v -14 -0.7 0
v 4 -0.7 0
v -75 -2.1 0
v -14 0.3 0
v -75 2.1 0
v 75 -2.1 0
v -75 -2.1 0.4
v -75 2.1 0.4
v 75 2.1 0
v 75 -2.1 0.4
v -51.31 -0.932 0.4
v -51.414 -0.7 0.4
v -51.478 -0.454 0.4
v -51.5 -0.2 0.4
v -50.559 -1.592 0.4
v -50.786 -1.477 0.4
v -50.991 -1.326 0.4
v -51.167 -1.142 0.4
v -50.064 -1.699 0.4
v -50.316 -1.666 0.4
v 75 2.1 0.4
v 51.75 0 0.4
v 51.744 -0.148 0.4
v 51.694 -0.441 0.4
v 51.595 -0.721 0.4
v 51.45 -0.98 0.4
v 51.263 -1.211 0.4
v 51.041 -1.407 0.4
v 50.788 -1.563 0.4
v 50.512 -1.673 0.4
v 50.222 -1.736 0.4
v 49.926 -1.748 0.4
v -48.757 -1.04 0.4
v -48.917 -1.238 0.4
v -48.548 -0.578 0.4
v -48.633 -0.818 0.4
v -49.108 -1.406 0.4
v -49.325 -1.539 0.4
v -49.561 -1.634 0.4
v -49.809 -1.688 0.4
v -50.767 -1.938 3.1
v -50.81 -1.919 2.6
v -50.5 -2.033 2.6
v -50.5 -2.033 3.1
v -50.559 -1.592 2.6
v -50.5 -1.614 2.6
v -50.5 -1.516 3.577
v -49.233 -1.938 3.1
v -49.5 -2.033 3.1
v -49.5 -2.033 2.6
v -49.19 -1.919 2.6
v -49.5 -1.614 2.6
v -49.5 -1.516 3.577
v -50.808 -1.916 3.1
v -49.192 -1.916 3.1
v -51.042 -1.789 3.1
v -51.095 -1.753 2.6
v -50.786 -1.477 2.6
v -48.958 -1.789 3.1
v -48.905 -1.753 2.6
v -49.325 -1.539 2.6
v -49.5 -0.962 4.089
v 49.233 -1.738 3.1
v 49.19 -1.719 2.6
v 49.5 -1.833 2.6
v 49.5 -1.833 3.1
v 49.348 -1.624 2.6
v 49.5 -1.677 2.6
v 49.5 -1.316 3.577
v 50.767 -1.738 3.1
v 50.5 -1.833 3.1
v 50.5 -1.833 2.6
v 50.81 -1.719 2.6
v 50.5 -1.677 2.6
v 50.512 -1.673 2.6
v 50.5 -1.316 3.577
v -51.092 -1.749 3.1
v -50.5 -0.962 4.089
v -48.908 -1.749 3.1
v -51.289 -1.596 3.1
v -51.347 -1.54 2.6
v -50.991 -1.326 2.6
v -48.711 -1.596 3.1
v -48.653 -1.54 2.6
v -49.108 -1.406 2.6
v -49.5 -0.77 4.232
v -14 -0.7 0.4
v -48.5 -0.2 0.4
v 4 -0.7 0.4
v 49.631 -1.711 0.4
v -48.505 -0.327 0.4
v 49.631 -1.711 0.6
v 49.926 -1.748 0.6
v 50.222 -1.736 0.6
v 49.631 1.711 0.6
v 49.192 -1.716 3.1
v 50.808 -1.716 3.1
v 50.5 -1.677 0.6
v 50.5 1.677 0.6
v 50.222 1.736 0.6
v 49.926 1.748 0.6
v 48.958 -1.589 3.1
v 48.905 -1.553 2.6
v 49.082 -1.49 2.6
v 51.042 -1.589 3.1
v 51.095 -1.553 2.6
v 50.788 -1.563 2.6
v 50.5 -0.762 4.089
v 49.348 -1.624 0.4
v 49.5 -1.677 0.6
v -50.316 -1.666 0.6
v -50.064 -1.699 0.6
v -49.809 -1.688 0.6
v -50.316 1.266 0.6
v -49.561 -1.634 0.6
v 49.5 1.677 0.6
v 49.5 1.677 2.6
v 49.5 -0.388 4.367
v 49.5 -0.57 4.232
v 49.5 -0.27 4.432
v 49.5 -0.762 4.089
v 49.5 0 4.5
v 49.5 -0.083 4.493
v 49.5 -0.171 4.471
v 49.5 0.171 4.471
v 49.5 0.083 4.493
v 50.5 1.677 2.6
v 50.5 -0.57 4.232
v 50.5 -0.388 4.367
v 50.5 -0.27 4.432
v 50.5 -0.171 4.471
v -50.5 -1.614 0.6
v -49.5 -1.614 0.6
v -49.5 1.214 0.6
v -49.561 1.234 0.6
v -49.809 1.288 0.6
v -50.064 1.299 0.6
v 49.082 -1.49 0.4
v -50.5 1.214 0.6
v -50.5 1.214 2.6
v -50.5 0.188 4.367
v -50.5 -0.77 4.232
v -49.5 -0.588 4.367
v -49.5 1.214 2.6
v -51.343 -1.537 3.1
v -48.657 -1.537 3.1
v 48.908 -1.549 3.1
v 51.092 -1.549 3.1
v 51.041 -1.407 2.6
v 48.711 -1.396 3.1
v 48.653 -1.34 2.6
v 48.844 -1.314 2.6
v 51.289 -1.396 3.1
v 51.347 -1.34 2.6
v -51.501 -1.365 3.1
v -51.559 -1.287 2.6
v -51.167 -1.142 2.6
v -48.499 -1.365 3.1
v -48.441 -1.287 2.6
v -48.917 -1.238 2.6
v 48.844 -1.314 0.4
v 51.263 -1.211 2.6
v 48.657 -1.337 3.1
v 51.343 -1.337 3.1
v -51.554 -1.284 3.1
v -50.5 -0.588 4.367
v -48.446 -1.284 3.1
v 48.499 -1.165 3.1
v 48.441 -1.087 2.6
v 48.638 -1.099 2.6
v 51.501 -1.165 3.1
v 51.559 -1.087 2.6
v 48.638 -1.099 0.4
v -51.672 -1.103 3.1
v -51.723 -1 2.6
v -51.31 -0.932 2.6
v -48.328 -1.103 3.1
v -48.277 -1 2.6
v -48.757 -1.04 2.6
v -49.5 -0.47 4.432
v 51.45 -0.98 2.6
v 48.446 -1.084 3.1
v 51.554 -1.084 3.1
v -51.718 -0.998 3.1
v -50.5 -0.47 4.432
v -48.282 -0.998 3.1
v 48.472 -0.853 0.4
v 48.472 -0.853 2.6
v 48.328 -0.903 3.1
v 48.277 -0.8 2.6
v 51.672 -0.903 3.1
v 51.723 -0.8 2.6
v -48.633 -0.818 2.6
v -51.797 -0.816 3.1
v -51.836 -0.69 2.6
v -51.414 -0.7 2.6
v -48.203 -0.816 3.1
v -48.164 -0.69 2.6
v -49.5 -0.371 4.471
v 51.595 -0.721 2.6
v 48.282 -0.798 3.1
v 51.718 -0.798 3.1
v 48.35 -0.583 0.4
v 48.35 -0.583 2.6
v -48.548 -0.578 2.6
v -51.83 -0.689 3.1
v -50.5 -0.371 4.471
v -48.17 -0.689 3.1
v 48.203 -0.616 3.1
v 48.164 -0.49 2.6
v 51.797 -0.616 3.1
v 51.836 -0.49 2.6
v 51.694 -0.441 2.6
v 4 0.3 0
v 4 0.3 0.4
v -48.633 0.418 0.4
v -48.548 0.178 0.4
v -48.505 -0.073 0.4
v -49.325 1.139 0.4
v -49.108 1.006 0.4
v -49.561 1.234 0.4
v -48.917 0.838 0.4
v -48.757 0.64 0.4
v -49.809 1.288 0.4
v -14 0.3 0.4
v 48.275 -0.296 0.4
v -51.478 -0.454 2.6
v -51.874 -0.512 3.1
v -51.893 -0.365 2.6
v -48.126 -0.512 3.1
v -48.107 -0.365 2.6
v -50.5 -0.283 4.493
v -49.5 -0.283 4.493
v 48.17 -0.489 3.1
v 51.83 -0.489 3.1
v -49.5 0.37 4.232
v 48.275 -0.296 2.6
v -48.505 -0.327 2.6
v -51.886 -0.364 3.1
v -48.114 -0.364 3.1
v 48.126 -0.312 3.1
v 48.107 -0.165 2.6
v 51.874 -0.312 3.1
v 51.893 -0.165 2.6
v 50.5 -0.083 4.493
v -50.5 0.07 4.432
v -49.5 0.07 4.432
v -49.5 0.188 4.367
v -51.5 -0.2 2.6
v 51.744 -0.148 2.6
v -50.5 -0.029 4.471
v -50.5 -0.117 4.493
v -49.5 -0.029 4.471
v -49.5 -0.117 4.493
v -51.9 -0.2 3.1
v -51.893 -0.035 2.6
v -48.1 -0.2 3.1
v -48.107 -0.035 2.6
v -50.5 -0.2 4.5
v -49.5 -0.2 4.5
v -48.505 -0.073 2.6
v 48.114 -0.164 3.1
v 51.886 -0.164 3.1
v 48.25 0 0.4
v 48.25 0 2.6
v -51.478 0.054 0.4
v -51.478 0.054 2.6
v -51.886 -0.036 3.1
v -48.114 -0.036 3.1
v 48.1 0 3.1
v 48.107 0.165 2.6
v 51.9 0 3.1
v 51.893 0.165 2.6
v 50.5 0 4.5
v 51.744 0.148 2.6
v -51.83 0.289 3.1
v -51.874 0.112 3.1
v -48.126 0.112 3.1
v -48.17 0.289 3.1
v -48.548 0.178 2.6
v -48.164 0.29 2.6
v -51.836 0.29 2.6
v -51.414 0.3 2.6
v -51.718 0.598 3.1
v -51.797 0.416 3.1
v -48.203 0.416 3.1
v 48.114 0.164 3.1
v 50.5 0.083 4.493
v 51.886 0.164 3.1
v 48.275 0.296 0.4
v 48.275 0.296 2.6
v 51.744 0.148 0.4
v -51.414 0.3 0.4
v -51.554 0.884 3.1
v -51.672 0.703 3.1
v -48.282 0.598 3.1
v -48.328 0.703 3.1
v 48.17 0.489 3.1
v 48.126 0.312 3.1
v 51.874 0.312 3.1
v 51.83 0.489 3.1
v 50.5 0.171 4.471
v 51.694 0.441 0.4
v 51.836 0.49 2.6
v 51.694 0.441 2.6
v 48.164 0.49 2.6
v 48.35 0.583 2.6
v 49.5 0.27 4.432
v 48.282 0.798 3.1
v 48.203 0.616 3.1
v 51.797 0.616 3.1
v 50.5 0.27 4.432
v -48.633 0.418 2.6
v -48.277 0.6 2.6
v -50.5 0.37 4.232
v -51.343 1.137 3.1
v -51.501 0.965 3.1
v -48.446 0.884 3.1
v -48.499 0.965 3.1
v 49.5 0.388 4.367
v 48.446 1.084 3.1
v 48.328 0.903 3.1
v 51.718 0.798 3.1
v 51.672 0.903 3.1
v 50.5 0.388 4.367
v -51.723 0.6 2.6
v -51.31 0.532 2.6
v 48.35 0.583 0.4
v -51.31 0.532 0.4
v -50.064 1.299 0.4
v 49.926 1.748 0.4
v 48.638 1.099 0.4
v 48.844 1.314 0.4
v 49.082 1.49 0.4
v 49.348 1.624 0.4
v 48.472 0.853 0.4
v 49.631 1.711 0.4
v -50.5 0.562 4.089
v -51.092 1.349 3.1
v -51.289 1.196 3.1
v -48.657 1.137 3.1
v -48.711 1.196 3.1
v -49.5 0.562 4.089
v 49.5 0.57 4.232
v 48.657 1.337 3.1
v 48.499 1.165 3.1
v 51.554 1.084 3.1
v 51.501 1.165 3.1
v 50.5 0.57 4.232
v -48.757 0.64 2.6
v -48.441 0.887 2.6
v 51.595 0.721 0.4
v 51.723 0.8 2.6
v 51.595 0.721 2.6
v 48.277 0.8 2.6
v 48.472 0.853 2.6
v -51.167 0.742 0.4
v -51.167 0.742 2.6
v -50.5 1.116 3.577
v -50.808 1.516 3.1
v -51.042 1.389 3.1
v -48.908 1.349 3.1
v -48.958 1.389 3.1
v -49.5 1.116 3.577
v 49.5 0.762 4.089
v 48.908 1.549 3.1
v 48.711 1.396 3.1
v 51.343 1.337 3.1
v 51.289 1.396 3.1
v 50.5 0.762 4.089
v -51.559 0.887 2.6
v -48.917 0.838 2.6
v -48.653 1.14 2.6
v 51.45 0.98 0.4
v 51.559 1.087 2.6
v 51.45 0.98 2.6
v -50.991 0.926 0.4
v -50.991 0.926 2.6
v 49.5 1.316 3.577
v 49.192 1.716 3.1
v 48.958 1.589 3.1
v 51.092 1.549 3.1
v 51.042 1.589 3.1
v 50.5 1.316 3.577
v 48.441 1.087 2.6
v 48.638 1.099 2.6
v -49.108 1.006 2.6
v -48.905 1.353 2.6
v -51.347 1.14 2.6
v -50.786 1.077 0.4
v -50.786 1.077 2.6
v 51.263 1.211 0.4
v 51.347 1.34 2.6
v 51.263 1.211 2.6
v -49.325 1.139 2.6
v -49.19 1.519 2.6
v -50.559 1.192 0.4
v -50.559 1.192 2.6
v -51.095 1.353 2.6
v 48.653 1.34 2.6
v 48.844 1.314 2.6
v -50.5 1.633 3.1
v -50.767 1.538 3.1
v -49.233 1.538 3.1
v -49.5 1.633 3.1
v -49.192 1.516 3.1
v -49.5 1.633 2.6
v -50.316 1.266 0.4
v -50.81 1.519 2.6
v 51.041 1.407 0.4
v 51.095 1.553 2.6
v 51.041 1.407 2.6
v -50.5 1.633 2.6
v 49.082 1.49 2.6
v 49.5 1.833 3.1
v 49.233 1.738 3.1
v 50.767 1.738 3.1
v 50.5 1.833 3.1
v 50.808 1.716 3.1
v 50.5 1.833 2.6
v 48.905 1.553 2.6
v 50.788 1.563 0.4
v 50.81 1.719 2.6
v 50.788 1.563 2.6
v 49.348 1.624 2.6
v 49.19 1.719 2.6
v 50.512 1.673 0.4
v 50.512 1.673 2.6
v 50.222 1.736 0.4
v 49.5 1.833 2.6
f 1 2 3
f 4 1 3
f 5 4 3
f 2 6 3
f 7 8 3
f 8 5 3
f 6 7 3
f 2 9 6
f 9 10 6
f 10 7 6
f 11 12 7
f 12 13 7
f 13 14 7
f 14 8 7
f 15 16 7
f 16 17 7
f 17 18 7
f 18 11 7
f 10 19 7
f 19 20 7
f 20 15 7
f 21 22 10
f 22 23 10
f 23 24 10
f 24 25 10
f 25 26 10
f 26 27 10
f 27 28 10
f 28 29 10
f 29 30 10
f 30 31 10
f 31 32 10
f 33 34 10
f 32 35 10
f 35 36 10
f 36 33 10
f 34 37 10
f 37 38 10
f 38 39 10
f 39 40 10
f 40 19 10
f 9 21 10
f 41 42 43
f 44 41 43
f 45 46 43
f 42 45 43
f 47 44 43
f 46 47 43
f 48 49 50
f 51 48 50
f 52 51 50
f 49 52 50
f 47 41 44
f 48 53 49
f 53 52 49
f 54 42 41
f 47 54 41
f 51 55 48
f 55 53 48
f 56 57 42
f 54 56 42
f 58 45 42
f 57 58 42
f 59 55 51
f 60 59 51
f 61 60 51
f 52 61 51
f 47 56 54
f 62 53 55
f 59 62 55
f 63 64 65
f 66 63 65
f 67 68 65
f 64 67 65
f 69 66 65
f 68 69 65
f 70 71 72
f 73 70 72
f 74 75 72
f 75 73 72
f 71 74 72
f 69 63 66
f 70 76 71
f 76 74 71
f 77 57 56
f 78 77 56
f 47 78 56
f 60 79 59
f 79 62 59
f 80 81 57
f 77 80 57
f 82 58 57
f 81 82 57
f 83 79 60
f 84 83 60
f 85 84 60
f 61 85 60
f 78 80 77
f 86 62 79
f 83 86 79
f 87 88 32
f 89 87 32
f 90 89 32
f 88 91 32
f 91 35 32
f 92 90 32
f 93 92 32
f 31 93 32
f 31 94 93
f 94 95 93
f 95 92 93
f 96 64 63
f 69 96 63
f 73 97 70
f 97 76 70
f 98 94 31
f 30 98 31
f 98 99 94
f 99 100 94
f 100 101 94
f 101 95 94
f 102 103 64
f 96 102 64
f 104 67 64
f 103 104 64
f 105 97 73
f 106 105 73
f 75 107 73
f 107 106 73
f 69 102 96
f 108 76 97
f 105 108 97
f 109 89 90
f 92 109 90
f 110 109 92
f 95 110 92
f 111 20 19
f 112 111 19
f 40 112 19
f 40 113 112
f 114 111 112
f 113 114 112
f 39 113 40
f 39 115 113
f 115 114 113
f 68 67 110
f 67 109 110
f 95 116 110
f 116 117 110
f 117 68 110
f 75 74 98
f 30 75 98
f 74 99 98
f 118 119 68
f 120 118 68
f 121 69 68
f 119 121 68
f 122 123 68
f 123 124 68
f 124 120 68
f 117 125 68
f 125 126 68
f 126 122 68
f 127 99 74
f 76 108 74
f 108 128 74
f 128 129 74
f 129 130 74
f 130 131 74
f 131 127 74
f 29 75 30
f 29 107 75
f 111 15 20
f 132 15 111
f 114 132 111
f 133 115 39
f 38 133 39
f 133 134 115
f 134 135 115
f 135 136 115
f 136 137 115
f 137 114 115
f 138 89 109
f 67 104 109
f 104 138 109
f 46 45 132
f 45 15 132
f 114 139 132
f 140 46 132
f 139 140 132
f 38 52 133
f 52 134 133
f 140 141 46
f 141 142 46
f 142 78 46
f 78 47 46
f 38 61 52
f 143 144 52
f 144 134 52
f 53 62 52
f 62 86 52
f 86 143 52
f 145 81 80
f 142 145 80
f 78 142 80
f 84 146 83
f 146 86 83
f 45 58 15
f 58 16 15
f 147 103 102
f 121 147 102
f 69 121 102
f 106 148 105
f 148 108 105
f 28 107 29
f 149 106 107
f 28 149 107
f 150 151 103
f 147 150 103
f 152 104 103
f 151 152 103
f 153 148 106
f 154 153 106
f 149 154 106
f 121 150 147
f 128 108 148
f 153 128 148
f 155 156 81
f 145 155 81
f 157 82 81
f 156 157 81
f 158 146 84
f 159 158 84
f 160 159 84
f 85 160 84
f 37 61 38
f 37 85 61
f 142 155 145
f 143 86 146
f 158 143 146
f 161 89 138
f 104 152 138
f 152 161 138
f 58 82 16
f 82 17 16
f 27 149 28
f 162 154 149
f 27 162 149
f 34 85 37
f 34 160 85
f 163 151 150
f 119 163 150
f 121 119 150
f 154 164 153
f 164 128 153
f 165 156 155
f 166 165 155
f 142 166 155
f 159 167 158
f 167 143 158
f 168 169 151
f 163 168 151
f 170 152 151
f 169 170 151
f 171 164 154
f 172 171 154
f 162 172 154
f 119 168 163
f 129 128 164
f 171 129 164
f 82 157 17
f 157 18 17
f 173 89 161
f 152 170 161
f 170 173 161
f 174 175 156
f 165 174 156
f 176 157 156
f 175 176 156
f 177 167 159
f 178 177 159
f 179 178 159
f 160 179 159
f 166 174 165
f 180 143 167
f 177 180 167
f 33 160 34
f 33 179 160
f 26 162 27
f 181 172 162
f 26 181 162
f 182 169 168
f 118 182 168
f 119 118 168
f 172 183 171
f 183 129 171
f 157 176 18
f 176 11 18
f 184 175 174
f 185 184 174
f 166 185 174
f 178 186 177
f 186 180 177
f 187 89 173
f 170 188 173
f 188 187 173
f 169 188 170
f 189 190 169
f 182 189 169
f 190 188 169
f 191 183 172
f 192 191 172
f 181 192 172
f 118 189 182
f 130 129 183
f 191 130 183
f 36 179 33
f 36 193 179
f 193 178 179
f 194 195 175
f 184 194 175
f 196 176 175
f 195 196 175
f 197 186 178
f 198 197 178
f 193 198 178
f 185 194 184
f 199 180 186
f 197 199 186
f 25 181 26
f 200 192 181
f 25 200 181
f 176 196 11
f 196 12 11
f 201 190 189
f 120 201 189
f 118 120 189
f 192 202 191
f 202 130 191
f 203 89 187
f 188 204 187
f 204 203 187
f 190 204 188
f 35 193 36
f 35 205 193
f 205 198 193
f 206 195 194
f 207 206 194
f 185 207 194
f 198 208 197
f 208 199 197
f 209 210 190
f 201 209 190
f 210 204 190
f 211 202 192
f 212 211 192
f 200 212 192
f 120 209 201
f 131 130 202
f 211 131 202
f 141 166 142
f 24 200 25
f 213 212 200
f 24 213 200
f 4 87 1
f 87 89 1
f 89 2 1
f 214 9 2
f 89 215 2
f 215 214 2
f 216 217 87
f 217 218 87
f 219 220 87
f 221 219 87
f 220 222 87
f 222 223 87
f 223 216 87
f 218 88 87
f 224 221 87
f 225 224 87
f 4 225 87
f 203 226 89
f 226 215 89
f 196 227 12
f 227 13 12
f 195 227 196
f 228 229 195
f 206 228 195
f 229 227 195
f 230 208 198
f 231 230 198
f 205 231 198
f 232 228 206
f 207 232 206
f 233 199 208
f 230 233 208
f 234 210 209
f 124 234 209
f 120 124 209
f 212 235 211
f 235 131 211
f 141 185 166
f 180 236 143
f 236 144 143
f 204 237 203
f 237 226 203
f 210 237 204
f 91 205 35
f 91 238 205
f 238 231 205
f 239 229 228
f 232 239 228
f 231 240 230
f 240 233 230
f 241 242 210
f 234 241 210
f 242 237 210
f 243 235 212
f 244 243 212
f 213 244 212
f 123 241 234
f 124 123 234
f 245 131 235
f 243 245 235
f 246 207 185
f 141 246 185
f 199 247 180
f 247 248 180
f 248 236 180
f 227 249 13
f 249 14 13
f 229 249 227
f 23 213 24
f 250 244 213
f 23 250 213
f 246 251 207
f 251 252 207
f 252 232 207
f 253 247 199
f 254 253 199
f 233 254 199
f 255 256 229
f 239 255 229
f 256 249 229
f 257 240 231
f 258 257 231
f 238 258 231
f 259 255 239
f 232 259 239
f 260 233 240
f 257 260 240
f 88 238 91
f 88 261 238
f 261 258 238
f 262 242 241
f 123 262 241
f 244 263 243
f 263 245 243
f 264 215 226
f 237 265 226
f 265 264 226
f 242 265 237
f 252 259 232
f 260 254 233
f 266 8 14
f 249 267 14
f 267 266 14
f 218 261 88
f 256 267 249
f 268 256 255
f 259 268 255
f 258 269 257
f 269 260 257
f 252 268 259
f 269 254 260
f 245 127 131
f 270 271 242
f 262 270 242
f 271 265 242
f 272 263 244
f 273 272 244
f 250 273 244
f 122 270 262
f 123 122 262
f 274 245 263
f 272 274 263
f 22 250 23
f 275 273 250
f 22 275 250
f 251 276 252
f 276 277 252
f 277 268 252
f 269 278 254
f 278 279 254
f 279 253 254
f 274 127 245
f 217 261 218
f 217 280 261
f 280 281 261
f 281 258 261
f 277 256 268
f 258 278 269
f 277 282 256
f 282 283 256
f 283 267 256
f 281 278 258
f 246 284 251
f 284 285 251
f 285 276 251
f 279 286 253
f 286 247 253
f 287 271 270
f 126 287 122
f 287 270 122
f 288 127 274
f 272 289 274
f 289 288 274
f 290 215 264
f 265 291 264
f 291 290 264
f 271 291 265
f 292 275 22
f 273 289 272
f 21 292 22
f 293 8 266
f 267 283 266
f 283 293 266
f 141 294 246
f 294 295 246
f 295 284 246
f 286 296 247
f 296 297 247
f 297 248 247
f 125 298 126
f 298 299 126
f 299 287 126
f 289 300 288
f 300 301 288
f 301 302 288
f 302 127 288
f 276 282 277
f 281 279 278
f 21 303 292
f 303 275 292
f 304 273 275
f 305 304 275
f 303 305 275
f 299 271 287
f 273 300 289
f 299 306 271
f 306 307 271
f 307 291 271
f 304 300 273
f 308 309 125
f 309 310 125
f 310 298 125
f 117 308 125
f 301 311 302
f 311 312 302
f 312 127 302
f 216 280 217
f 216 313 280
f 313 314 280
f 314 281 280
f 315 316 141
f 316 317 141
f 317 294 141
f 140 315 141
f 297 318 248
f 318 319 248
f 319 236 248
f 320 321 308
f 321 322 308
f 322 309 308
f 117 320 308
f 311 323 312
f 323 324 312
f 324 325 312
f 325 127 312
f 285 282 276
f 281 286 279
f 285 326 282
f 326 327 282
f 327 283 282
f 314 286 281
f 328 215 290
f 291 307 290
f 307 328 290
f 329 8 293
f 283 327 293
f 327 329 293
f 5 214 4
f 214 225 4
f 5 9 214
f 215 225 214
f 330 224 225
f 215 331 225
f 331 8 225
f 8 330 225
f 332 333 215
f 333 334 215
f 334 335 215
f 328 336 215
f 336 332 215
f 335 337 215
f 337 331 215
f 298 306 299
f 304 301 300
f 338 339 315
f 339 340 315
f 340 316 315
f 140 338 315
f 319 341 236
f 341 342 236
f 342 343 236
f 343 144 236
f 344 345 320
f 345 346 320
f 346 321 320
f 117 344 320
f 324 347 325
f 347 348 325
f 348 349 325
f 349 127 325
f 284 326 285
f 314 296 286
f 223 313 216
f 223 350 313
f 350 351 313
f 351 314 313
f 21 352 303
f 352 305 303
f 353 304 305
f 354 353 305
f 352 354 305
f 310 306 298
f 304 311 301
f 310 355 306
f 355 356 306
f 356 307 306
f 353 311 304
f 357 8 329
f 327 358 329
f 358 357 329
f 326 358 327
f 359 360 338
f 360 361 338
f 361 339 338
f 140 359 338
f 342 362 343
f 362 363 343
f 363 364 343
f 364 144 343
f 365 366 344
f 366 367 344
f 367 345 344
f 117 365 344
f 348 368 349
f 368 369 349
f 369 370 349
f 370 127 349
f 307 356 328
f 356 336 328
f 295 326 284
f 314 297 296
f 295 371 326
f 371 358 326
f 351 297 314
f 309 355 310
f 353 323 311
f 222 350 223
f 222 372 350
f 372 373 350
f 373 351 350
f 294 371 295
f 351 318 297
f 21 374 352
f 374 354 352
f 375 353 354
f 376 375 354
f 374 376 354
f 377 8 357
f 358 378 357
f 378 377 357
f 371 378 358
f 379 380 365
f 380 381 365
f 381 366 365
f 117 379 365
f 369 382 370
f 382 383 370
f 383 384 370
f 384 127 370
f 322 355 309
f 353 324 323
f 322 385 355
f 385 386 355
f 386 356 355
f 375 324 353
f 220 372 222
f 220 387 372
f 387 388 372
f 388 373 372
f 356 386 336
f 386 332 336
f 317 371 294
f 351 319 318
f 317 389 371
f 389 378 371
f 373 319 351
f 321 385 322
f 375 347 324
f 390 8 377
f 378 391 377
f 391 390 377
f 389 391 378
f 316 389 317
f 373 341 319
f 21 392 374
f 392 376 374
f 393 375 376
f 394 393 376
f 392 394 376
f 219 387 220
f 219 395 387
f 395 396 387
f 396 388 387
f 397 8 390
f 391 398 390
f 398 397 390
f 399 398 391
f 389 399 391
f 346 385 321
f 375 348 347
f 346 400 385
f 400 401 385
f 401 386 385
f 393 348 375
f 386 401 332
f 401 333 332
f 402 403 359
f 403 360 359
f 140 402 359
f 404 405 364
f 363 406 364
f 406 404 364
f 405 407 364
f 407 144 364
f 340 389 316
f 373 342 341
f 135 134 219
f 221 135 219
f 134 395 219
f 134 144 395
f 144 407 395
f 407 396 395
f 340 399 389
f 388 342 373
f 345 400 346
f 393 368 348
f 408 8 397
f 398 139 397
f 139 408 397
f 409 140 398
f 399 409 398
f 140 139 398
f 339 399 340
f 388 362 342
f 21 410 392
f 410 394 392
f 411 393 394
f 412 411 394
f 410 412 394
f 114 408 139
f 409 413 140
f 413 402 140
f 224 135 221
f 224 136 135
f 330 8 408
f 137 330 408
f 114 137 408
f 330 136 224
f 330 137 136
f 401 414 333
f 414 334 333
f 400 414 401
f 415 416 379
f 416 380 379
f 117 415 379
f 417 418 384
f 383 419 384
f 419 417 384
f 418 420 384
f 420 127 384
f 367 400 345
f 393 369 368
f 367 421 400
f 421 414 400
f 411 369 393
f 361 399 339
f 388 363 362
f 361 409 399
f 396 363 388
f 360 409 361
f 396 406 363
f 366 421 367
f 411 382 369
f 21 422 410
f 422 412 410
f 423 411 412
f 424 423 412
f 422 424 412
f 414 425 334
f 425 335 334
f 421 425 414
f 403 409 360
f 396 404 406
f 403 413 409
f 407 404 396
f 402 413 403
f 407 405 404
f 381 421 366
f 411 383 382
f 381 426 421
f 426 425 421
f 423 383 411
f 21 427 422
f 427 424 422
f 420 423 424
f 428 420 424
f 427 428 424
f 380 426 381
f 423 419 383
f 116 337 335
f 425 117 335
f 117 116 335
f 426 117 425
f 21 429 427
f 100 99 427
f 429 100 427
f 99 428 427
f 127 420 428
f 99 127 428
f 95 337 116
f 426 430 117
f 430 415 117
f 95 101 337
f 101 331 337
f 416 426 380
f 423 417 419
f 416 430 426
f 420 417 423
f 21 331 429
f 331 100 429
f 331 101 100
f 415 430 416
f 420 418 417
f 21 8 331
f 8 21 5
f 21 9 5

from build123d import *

# Parameters (mm, degrees)
SKICA2_W                 = 150
SKICA2_H                 = 4.2
SKICA2_W_2               = 18
SKICA2_H_2               = 1
P_IDAT_VYSUNUT_M2_DEPTH  = 0.4
SKICA3_R                 = 1.5
SKICA3_R_2               = 1.75
P_IDAT_VYSUNUT_M3_DEPTH  = 2.2
SKICA5_R                 = 1.9
P_IDAT_VYSUNUT_M5_DEPTH  = 2
ZKOSEN_2_SIZE            = 1.5
SKICA7_W                 = 1
SKICA7_H                 = 5
ODEBRAT_VYSUNUT_M1_DEPTH = 4


with BuildPart() as part:
    # Skica2 → Přidat vysunutím2 (new body)
    with BuildSketch(Plane.XY):
        Rectangle(SKICA2_W, SKICA2_H)
        with Locations((-5, -0.2)):
            Rectangle(SKICA2_W_2, SKICA2_H_2, mode=Mode.SUBTRACT)
    extrude(amount=P_IDAT_VYSUNUT_M2_DEPTH)

    # Skica3 → Přidat vysunutím3 (add)
    with BuildSketch(Plane.XY.offset(0.4)):
        with Locations((-50, -0.2)):
            Circle(SKICA3_R)
        with Locations((50, 0)):
            Circle(SKICA3_R_2)
    extrude(amount=P_IDAT_VYSUNUT_M3_DEPTH)

    # Skica5 → Přidat vysunutím5 (add)
    with BuildSketch(Plane.XY.offset(2.6)):
        with Locations((-50, -0.2)):
            Circle(SKICA5_R)
        with Locations((50, 0)):
            Circle(SKICA5_R)
    extrude(amount=P_IDAT_VYSUNUT_M5_DEPTH)

    # Zkosení2
    zkosen_2_edges = [part.edges().sort_by_distance(p)[0] for p in [
        (-51.9, -0.2, 4.6),
        (48.1, 0, 4.6),
    ]]
    chamfer(zkosen_2_edges, length=ZKOSEN_2_SIZE)

    # Skica7 → Odebrat vysunutím1 (cut)
    with BuildSketch(Plane.XY.offset(4.6)):
        with Locations((-50, -0.2)):
            Rectangle(SKICA7_W, SKICA7_H)
        with Locations((50, 0)):
            Rectangle(SKICA7_W, SKICA7_H)
    extrude(amount=-ODEBRAT_VYSUNUT_M1_DEPTH, mode=Mode.SUBTRACT)


solid = part.part
